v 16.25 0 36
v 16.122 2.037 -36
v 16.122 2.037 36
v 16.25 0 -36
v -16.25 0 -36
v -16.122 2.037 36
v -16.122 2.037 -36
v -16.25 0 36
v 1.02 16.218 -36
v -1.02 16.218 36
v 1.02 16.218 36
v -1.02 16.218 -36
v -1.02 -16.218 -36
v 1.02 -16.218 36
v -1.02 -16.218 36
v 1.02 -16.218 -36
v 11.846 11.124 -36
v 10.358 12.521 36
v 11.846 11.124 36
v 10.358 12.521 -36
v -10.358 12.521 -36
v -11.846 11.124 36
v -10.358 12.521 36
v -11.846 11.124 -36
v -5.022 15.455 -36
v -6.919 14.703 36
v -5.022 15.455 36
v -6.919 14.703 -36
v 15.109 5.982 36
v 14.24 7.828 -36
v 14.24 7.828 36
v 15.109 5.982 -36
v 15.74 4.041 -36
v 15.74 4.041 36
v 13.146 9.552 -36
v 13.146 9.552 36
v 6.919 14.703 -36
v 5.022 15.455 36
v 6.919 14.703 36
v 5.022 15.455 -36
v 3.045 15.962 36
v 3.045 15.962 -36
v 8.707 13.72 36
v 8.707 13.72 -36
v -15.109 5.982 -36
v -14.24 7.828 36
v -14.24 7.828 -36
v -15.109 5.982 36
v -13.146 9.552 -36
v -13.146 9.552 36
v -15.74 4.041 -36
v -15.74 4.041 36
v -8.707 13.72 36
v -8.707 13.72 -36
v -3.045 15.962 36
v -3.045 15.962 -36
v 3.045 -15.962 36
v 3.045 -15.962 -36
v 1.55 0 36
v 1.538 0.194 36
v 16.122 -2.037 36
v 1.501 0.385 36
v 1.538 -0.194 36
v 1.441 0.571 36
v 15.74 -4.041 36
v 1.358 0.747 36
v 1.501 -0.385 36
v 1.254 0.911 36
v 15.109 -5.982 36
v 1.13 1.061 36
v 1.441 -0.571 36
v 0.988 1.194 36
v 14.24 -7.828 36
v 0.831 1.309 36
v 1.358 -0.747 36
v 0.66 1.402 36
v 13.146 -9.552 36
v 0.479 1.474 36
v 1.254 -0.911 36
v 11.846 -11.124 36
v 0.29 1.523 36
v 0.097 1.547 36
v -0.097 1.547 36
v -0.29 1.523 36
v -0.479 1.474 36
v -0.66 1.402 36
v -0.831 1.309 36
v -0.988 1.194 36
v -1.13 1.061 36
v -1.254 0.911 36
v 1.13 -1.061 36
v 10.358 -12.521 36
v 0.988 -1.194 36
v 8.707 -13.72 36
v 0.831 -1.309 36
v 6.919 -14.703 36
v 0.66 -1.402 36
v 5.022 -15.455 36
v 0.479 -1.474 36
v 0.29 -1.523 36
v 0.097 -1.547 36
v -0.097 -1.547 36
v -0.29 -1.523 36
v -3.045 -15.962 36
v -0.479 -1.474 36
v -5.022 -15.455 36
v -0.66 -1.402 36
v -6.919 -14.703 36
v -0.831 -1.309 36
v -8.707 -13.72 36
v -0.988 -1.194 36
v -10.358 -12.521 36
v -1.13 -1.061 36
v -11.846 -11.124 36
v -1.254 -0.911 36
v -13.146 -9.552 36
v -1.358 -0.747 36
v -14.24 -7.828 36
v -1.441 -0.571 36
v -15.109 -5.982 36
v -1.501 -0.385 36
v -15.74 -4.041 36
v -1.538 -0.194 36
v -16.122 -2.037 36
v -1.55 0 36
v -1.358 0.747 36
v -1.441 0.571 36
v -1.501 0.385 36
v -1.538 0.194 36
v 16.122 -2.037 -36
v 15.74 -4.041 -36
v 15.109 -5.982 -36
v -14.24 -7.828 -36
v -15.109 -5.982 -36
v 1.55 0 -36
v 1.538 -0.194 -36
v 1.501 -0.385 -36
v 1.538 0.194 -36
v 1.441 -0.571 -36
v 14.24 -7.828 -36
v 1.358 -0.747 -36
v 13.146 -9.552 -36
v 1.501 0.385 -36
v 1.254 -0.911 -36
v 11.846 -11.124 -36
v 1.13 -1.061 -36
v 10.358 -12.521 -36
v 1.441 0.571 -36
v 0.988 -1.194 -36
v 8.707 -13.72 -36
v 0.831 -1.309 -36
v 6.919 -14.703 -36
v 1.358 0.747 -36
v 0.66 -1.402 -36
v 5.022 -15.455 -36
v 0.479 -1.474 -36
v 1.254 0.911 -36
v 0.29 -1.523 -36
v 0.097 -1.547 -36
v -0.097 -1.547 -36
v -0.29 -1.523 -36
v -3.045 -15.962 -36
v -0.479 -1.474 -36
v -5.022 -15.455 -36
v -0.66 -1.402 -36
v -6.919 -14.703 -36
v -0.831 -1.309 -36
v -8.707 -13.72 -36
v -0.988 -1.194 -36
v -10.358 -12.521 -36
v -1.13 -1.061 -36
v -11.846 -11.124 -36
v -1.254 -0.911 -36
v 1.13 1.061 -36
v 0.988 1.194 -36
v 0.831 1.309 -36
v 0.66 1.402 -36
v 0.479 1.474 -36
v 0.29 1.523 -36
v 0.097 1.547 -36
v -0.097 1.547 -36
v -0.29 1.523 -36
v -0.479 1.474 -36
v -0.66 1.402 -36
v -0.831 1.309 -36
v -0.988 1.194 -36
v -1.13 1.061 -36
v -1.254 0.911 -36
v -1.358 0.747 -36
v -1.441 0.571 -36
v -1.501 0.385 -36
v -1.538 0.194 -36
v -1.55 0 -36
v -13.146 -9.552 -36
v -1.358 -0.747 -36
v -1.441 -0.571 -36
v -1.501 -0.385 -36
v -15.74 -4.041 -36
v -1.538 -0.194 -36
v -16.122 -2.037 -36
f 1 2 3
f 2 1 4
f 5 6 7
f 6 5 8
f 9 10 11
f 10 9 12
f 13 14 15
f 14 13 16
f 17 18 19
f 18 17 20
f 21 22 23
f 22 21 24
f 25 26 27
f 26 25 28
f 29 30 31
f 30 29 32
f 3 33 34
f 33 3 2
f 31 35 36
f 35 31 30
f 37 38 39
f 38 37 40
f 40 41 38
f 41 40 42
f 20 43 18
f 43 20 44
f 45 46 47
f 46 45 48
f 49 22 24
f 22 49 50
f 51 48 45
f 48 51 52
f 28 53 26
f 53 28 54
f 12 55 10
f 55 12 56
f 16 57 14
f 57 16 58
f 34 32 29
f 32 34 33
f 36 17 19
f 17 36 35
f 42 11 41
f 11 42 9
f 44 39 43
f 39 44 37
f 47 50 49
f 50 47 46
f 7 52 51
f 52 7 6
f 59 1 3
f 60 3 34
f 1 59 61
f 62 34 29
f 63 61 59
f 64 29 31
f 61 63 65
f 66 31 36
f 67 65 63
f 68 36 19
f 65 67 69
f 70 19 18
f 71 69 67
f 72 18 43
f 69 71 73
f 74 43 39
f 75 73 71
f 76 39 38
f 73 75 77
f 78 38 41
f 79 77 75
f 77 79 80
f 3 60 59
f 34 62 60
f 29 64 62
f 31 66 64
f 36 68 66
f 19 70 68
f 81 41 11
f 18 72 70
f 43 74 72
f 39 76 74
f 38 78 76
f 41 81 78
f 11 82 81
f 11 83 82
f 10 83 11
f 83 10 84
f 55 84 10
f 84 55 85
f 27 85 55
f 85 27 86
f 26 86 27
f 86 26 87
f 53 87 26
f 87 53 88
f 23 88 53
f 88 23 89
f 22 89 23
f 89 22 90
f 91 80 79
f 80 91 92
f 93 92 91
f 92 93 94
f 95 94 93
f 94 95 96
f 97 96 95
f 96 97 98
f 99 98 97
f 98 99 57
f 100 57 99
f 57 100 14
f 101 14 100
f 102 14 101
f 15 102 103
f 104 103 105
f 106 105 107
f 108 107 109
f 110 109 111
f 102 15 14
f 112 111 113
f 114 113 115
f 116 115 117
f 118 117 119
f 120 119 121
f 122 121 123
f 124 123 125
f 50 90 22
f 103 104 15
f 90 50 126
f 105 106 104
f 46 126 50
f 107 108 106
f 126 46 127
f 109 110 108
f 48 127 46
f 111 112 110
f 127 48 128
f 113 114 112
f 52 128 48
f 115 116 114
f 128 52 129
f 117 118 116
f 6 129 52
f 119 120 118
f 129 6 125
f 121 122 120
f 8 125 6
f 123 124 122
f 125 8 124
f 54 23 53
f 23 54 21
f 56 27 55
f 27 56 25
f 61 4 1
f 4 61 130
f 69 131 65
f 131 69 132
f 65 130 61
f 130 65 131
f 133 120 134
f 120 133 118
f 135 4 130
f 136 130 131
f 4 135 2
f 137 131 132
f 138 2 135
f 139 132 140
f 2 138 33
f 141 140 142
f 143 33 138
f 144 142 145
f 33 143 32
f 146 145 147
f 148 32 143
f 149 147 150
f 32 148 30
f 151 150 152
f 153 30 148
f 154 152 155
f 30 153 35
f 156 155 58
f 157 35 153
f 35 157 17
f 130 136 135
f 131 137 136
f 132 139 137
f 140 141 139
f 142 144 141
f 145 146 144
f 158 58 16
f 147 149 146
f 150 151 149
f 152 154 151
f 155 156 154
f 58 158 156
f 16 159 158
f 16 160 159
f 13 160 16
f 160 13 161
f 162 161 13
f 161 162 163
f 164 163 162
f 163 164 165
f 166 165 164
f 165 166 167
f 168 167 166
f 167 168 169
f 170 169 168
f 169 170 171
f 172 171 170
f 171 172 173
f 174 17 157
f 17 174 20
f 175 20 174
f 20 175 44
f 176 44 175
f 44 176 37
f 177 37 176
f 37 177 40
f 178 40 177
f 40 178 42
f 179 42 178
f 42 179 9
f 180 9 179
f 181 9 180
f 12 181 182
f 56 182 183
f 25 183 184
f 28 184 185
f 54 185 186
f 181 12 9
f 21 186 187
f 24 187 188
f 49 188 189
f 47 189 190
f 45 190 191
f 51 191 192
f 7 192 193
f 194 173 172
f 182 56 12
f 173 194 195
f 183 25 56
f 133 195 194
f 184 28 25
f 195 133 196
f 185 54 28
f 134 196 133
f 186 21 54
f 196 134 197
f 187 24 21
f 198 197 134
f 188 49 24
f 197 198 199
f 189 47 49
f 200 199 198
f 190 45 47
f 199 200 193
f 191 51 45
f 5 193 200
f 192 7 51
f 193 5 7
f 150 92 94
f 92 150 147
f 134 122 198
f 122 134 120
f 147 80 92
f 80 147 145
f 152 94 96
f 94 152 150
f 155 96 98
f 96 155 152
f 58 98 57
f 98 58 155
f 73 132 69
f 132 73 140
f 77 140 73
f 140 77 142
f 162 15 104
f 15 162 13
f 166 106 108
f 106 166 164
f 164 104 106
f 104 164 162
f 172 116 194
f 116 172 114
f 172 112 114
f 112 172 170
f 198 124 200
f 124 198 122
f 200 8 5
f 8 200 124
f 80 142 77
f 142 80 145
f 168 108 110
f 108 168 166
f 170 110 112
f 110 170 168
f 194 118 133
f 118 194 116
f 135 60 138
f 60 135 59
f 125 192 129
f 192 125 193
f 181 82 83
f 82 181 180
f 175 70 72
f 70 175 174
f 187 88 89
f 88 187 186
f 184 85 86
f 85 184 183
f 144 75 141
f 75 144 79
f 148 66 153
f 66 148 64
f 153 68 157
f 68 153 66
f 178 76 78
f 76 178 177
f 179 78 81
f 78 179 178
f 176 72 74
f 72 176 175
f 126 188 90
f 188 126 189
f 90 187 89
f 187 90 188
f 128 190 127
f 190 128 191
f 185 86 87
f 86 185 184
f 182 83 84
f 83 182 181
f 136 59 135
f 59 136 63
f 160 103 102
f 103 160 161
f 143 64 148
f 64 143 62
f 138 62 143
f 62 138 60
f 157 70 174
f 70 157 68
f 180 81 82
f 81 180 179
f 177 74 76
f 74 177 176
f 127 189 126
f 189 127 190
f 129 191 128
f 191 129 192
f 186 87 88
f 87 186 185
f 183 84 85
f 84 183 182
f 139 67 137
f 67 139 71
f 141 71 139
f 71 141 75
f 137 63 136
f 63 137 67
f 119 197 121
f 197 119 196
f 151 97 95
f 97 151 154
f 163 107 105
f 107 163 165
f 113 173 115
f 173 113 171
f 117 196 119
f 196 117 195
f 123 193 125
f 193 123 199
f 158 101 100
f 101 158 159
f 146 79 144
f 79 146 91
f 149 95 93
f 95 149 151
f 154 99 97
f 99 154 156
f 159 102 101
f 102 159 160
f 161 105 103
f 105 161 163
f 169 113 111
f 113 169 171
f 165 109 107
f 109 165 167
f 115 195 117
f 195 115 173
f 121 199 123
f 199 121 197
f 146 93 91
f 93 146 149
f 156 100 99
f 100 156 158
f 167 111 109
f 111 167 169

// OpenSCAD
$fn = 50;


difference() {
	union() {
		translate(v = [0, 0, -36.0000000000]) {
			cylinder(h = 72, r = 16.2500000000);
		}
	}
	union() {
		translate(v = [0, 0, -100.0000000000]) {
			cylinder(h = 200, r = 1.5500000000);
		}
	}
}
